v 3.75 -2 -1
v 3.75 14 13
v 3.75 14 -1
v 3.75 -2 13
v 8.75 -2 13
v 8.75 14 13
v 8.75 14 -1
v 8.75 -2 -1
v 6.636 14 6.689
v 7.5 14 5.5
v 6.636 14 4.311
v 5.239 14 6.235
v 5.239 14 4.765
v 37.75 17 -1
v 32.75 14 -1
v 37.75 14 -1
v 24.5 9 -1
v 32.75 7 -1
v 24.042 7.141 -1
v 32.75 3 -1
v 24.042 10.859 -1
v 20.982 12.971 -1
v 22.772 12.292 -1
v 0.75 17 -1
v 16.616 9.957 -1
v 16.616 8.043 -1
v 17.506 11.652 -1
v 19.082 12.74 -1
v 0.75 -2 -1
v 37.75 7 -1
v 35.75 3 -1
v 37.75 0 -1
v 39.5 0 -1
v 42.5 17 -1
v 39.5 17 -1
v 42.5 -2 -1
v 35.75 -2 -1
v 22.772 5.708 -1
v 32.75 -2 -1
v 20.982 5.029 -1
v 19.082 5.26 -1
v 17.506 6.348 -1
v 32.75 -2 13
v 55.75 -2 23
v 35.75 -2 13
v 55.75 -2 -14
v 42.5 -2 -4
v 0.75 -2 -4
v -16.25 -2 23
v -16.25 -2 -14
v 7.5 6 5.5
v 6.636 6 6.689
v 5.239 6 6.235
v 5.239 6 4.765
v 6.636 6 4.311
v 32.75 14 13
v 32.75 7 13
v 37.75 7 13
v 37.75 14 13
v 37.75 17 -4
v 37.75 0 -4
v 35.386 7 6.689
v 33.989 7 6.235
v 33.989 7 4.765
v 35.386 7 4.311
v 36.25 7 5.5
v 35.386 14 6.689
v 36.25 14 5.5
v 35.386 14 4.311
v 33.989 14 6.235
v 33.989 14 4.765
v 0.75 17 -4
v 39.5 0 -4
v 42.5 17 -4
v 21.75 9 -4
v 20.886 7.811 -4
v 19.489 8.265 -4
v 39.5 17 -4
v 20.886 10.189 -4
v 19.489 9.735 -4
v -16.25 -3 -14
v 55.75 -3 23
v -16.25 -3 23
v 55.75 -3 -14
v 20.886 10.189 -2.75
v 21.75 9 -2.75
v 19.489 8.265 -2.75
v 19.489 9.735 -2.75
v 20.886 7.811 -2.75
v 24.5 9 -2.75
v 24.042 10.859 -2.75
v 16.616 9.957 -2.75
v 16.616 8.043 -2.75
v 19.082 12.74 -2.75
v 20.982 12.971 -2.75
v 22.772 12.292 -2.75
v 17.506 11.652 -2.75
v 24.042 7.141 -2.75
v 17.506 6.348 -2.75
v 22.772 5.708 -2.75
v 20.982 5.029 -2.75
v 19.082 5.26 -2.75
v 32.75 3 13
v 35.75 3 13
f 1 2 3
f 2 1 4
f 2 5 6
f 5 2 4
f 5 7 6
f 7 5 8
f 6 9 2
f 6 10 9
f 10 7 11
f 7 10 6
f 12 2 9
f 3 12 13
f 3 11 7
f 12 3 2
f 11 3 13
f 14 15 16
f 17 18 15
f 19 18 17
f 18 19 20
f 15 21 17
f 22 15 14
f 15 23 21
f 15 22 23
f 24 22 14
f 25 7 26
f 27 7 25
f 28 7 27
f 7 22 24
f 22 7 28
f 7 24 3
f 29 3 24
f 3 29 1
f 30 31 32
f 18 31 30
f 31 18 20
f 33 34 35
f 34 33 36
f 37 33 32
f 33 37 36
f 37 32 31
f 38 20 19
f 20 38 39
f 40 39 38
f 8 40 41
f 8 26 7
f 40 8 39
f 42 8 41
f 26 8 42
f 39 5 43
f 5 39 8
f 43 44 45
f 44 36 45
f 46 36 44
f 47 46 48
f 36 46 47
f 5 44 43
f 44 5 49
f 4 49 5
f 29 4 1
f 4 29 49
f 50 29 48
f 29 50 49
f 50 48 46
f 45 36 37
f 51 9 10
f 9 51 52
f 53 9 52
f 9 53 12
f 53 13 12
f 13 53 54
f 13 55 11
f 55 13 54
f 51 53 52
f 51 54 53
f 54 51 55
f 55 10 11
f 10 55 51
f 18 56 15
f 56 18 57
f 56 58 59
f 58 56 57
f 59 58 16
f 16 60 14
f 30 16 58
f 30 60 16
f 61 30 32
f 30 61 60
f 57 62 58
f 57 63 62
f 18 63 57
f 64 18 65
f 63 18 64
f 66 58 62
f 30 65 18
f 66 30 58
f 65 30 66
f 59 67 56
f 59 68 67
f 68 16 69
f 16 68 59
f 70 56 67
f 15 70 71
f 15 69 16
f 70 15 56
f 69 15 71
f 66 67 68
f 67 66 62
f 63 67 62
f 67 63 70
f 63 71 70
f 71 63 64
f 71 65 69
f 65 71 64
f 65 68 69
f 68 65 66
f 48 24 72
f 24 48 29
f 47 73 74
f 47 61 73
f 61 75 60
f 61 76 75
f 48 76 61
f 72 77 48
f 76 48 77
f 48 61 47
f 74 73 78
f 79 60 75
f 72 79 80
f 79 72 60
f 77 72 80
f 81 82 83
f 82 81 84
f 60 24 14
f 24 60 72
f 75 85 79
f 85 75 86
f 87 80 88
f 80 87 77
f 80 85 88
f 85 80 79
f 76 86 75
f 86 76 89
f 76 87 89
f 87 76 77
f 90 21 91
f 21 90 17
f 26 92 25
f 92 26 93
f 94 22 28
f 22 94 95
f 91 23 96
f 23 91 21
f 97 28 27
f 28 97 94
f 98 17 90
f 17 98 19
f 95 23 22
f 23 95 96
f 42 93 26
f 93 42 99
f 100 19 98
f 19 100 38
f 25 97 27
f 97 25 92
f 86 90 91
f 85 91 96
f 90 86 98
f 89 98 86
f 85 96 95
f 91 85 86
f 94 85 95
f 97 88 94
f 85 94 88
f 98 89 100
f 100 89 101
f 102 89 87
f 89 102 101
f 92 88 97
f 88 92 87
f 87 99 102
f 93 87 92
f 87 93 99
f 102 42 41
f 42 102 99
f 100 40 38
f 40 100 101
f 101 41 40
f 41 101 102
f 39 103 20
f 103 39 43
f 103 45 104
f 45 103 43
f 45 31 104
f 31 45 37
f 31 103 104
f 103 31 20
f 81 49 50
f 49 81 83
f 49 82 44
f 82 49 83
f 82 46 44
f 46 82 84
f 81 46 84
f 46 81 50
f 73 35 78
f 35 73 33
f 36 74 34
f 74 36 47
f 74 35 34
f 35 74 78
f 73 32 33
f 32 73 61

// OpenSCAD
difference()
{
translate([3.75,-2,-1])
{
    cube([5,16,14]);
}

translate([6.25,14,5.5])
{
    rotate([90,0,0])
    {
    cylinder(8,1.25,1.25);
    }
}

}

difference()
{
translate([0.75,-3,-4])
{
    cube([37,20,3]);
}

translate([20.5,9,-4.5])
{
cylinder(2,1.25,1.25);
}

translate([20.5,9,-2.75])
{
cylinder(3,4,4);
}


}

/*
translate([2.75,-3,-6.75])
{
cube([15,8,2.75]);
}

translate([2.75,13,-6.75])
{
cube([15,8,2.75]);
}

translate([22.75,-3,-6.75])
{
cube([15,8,2.75]);
}

translate([22.75,13,-6.75])
{
cube([15,8,2.75]);
}
*/

translate([32.75,-2,-1])
{
    cube([3,5,14]);
}

translate([-16.25,-3,-14])
{
    cube([72,1,37]);
}

translate([39.5,-3,-4])
{
    cube([3,20,3]);
}

translate([37.5,-3,-4])
{
    cube([3,3,3]);
}


difference()
{
    
translate([32.75,7,-1])
{
    cube([5,7,14]);
}

translate([35,14,5.5])
{
    rotate([90,0,0])
    {
    cylinder(8,1.25,1.25);
    }
}

}

translate([0,0,14])
{
    rotate([-90,0,0])
    {
    //import("servo.stl");
    }
}
